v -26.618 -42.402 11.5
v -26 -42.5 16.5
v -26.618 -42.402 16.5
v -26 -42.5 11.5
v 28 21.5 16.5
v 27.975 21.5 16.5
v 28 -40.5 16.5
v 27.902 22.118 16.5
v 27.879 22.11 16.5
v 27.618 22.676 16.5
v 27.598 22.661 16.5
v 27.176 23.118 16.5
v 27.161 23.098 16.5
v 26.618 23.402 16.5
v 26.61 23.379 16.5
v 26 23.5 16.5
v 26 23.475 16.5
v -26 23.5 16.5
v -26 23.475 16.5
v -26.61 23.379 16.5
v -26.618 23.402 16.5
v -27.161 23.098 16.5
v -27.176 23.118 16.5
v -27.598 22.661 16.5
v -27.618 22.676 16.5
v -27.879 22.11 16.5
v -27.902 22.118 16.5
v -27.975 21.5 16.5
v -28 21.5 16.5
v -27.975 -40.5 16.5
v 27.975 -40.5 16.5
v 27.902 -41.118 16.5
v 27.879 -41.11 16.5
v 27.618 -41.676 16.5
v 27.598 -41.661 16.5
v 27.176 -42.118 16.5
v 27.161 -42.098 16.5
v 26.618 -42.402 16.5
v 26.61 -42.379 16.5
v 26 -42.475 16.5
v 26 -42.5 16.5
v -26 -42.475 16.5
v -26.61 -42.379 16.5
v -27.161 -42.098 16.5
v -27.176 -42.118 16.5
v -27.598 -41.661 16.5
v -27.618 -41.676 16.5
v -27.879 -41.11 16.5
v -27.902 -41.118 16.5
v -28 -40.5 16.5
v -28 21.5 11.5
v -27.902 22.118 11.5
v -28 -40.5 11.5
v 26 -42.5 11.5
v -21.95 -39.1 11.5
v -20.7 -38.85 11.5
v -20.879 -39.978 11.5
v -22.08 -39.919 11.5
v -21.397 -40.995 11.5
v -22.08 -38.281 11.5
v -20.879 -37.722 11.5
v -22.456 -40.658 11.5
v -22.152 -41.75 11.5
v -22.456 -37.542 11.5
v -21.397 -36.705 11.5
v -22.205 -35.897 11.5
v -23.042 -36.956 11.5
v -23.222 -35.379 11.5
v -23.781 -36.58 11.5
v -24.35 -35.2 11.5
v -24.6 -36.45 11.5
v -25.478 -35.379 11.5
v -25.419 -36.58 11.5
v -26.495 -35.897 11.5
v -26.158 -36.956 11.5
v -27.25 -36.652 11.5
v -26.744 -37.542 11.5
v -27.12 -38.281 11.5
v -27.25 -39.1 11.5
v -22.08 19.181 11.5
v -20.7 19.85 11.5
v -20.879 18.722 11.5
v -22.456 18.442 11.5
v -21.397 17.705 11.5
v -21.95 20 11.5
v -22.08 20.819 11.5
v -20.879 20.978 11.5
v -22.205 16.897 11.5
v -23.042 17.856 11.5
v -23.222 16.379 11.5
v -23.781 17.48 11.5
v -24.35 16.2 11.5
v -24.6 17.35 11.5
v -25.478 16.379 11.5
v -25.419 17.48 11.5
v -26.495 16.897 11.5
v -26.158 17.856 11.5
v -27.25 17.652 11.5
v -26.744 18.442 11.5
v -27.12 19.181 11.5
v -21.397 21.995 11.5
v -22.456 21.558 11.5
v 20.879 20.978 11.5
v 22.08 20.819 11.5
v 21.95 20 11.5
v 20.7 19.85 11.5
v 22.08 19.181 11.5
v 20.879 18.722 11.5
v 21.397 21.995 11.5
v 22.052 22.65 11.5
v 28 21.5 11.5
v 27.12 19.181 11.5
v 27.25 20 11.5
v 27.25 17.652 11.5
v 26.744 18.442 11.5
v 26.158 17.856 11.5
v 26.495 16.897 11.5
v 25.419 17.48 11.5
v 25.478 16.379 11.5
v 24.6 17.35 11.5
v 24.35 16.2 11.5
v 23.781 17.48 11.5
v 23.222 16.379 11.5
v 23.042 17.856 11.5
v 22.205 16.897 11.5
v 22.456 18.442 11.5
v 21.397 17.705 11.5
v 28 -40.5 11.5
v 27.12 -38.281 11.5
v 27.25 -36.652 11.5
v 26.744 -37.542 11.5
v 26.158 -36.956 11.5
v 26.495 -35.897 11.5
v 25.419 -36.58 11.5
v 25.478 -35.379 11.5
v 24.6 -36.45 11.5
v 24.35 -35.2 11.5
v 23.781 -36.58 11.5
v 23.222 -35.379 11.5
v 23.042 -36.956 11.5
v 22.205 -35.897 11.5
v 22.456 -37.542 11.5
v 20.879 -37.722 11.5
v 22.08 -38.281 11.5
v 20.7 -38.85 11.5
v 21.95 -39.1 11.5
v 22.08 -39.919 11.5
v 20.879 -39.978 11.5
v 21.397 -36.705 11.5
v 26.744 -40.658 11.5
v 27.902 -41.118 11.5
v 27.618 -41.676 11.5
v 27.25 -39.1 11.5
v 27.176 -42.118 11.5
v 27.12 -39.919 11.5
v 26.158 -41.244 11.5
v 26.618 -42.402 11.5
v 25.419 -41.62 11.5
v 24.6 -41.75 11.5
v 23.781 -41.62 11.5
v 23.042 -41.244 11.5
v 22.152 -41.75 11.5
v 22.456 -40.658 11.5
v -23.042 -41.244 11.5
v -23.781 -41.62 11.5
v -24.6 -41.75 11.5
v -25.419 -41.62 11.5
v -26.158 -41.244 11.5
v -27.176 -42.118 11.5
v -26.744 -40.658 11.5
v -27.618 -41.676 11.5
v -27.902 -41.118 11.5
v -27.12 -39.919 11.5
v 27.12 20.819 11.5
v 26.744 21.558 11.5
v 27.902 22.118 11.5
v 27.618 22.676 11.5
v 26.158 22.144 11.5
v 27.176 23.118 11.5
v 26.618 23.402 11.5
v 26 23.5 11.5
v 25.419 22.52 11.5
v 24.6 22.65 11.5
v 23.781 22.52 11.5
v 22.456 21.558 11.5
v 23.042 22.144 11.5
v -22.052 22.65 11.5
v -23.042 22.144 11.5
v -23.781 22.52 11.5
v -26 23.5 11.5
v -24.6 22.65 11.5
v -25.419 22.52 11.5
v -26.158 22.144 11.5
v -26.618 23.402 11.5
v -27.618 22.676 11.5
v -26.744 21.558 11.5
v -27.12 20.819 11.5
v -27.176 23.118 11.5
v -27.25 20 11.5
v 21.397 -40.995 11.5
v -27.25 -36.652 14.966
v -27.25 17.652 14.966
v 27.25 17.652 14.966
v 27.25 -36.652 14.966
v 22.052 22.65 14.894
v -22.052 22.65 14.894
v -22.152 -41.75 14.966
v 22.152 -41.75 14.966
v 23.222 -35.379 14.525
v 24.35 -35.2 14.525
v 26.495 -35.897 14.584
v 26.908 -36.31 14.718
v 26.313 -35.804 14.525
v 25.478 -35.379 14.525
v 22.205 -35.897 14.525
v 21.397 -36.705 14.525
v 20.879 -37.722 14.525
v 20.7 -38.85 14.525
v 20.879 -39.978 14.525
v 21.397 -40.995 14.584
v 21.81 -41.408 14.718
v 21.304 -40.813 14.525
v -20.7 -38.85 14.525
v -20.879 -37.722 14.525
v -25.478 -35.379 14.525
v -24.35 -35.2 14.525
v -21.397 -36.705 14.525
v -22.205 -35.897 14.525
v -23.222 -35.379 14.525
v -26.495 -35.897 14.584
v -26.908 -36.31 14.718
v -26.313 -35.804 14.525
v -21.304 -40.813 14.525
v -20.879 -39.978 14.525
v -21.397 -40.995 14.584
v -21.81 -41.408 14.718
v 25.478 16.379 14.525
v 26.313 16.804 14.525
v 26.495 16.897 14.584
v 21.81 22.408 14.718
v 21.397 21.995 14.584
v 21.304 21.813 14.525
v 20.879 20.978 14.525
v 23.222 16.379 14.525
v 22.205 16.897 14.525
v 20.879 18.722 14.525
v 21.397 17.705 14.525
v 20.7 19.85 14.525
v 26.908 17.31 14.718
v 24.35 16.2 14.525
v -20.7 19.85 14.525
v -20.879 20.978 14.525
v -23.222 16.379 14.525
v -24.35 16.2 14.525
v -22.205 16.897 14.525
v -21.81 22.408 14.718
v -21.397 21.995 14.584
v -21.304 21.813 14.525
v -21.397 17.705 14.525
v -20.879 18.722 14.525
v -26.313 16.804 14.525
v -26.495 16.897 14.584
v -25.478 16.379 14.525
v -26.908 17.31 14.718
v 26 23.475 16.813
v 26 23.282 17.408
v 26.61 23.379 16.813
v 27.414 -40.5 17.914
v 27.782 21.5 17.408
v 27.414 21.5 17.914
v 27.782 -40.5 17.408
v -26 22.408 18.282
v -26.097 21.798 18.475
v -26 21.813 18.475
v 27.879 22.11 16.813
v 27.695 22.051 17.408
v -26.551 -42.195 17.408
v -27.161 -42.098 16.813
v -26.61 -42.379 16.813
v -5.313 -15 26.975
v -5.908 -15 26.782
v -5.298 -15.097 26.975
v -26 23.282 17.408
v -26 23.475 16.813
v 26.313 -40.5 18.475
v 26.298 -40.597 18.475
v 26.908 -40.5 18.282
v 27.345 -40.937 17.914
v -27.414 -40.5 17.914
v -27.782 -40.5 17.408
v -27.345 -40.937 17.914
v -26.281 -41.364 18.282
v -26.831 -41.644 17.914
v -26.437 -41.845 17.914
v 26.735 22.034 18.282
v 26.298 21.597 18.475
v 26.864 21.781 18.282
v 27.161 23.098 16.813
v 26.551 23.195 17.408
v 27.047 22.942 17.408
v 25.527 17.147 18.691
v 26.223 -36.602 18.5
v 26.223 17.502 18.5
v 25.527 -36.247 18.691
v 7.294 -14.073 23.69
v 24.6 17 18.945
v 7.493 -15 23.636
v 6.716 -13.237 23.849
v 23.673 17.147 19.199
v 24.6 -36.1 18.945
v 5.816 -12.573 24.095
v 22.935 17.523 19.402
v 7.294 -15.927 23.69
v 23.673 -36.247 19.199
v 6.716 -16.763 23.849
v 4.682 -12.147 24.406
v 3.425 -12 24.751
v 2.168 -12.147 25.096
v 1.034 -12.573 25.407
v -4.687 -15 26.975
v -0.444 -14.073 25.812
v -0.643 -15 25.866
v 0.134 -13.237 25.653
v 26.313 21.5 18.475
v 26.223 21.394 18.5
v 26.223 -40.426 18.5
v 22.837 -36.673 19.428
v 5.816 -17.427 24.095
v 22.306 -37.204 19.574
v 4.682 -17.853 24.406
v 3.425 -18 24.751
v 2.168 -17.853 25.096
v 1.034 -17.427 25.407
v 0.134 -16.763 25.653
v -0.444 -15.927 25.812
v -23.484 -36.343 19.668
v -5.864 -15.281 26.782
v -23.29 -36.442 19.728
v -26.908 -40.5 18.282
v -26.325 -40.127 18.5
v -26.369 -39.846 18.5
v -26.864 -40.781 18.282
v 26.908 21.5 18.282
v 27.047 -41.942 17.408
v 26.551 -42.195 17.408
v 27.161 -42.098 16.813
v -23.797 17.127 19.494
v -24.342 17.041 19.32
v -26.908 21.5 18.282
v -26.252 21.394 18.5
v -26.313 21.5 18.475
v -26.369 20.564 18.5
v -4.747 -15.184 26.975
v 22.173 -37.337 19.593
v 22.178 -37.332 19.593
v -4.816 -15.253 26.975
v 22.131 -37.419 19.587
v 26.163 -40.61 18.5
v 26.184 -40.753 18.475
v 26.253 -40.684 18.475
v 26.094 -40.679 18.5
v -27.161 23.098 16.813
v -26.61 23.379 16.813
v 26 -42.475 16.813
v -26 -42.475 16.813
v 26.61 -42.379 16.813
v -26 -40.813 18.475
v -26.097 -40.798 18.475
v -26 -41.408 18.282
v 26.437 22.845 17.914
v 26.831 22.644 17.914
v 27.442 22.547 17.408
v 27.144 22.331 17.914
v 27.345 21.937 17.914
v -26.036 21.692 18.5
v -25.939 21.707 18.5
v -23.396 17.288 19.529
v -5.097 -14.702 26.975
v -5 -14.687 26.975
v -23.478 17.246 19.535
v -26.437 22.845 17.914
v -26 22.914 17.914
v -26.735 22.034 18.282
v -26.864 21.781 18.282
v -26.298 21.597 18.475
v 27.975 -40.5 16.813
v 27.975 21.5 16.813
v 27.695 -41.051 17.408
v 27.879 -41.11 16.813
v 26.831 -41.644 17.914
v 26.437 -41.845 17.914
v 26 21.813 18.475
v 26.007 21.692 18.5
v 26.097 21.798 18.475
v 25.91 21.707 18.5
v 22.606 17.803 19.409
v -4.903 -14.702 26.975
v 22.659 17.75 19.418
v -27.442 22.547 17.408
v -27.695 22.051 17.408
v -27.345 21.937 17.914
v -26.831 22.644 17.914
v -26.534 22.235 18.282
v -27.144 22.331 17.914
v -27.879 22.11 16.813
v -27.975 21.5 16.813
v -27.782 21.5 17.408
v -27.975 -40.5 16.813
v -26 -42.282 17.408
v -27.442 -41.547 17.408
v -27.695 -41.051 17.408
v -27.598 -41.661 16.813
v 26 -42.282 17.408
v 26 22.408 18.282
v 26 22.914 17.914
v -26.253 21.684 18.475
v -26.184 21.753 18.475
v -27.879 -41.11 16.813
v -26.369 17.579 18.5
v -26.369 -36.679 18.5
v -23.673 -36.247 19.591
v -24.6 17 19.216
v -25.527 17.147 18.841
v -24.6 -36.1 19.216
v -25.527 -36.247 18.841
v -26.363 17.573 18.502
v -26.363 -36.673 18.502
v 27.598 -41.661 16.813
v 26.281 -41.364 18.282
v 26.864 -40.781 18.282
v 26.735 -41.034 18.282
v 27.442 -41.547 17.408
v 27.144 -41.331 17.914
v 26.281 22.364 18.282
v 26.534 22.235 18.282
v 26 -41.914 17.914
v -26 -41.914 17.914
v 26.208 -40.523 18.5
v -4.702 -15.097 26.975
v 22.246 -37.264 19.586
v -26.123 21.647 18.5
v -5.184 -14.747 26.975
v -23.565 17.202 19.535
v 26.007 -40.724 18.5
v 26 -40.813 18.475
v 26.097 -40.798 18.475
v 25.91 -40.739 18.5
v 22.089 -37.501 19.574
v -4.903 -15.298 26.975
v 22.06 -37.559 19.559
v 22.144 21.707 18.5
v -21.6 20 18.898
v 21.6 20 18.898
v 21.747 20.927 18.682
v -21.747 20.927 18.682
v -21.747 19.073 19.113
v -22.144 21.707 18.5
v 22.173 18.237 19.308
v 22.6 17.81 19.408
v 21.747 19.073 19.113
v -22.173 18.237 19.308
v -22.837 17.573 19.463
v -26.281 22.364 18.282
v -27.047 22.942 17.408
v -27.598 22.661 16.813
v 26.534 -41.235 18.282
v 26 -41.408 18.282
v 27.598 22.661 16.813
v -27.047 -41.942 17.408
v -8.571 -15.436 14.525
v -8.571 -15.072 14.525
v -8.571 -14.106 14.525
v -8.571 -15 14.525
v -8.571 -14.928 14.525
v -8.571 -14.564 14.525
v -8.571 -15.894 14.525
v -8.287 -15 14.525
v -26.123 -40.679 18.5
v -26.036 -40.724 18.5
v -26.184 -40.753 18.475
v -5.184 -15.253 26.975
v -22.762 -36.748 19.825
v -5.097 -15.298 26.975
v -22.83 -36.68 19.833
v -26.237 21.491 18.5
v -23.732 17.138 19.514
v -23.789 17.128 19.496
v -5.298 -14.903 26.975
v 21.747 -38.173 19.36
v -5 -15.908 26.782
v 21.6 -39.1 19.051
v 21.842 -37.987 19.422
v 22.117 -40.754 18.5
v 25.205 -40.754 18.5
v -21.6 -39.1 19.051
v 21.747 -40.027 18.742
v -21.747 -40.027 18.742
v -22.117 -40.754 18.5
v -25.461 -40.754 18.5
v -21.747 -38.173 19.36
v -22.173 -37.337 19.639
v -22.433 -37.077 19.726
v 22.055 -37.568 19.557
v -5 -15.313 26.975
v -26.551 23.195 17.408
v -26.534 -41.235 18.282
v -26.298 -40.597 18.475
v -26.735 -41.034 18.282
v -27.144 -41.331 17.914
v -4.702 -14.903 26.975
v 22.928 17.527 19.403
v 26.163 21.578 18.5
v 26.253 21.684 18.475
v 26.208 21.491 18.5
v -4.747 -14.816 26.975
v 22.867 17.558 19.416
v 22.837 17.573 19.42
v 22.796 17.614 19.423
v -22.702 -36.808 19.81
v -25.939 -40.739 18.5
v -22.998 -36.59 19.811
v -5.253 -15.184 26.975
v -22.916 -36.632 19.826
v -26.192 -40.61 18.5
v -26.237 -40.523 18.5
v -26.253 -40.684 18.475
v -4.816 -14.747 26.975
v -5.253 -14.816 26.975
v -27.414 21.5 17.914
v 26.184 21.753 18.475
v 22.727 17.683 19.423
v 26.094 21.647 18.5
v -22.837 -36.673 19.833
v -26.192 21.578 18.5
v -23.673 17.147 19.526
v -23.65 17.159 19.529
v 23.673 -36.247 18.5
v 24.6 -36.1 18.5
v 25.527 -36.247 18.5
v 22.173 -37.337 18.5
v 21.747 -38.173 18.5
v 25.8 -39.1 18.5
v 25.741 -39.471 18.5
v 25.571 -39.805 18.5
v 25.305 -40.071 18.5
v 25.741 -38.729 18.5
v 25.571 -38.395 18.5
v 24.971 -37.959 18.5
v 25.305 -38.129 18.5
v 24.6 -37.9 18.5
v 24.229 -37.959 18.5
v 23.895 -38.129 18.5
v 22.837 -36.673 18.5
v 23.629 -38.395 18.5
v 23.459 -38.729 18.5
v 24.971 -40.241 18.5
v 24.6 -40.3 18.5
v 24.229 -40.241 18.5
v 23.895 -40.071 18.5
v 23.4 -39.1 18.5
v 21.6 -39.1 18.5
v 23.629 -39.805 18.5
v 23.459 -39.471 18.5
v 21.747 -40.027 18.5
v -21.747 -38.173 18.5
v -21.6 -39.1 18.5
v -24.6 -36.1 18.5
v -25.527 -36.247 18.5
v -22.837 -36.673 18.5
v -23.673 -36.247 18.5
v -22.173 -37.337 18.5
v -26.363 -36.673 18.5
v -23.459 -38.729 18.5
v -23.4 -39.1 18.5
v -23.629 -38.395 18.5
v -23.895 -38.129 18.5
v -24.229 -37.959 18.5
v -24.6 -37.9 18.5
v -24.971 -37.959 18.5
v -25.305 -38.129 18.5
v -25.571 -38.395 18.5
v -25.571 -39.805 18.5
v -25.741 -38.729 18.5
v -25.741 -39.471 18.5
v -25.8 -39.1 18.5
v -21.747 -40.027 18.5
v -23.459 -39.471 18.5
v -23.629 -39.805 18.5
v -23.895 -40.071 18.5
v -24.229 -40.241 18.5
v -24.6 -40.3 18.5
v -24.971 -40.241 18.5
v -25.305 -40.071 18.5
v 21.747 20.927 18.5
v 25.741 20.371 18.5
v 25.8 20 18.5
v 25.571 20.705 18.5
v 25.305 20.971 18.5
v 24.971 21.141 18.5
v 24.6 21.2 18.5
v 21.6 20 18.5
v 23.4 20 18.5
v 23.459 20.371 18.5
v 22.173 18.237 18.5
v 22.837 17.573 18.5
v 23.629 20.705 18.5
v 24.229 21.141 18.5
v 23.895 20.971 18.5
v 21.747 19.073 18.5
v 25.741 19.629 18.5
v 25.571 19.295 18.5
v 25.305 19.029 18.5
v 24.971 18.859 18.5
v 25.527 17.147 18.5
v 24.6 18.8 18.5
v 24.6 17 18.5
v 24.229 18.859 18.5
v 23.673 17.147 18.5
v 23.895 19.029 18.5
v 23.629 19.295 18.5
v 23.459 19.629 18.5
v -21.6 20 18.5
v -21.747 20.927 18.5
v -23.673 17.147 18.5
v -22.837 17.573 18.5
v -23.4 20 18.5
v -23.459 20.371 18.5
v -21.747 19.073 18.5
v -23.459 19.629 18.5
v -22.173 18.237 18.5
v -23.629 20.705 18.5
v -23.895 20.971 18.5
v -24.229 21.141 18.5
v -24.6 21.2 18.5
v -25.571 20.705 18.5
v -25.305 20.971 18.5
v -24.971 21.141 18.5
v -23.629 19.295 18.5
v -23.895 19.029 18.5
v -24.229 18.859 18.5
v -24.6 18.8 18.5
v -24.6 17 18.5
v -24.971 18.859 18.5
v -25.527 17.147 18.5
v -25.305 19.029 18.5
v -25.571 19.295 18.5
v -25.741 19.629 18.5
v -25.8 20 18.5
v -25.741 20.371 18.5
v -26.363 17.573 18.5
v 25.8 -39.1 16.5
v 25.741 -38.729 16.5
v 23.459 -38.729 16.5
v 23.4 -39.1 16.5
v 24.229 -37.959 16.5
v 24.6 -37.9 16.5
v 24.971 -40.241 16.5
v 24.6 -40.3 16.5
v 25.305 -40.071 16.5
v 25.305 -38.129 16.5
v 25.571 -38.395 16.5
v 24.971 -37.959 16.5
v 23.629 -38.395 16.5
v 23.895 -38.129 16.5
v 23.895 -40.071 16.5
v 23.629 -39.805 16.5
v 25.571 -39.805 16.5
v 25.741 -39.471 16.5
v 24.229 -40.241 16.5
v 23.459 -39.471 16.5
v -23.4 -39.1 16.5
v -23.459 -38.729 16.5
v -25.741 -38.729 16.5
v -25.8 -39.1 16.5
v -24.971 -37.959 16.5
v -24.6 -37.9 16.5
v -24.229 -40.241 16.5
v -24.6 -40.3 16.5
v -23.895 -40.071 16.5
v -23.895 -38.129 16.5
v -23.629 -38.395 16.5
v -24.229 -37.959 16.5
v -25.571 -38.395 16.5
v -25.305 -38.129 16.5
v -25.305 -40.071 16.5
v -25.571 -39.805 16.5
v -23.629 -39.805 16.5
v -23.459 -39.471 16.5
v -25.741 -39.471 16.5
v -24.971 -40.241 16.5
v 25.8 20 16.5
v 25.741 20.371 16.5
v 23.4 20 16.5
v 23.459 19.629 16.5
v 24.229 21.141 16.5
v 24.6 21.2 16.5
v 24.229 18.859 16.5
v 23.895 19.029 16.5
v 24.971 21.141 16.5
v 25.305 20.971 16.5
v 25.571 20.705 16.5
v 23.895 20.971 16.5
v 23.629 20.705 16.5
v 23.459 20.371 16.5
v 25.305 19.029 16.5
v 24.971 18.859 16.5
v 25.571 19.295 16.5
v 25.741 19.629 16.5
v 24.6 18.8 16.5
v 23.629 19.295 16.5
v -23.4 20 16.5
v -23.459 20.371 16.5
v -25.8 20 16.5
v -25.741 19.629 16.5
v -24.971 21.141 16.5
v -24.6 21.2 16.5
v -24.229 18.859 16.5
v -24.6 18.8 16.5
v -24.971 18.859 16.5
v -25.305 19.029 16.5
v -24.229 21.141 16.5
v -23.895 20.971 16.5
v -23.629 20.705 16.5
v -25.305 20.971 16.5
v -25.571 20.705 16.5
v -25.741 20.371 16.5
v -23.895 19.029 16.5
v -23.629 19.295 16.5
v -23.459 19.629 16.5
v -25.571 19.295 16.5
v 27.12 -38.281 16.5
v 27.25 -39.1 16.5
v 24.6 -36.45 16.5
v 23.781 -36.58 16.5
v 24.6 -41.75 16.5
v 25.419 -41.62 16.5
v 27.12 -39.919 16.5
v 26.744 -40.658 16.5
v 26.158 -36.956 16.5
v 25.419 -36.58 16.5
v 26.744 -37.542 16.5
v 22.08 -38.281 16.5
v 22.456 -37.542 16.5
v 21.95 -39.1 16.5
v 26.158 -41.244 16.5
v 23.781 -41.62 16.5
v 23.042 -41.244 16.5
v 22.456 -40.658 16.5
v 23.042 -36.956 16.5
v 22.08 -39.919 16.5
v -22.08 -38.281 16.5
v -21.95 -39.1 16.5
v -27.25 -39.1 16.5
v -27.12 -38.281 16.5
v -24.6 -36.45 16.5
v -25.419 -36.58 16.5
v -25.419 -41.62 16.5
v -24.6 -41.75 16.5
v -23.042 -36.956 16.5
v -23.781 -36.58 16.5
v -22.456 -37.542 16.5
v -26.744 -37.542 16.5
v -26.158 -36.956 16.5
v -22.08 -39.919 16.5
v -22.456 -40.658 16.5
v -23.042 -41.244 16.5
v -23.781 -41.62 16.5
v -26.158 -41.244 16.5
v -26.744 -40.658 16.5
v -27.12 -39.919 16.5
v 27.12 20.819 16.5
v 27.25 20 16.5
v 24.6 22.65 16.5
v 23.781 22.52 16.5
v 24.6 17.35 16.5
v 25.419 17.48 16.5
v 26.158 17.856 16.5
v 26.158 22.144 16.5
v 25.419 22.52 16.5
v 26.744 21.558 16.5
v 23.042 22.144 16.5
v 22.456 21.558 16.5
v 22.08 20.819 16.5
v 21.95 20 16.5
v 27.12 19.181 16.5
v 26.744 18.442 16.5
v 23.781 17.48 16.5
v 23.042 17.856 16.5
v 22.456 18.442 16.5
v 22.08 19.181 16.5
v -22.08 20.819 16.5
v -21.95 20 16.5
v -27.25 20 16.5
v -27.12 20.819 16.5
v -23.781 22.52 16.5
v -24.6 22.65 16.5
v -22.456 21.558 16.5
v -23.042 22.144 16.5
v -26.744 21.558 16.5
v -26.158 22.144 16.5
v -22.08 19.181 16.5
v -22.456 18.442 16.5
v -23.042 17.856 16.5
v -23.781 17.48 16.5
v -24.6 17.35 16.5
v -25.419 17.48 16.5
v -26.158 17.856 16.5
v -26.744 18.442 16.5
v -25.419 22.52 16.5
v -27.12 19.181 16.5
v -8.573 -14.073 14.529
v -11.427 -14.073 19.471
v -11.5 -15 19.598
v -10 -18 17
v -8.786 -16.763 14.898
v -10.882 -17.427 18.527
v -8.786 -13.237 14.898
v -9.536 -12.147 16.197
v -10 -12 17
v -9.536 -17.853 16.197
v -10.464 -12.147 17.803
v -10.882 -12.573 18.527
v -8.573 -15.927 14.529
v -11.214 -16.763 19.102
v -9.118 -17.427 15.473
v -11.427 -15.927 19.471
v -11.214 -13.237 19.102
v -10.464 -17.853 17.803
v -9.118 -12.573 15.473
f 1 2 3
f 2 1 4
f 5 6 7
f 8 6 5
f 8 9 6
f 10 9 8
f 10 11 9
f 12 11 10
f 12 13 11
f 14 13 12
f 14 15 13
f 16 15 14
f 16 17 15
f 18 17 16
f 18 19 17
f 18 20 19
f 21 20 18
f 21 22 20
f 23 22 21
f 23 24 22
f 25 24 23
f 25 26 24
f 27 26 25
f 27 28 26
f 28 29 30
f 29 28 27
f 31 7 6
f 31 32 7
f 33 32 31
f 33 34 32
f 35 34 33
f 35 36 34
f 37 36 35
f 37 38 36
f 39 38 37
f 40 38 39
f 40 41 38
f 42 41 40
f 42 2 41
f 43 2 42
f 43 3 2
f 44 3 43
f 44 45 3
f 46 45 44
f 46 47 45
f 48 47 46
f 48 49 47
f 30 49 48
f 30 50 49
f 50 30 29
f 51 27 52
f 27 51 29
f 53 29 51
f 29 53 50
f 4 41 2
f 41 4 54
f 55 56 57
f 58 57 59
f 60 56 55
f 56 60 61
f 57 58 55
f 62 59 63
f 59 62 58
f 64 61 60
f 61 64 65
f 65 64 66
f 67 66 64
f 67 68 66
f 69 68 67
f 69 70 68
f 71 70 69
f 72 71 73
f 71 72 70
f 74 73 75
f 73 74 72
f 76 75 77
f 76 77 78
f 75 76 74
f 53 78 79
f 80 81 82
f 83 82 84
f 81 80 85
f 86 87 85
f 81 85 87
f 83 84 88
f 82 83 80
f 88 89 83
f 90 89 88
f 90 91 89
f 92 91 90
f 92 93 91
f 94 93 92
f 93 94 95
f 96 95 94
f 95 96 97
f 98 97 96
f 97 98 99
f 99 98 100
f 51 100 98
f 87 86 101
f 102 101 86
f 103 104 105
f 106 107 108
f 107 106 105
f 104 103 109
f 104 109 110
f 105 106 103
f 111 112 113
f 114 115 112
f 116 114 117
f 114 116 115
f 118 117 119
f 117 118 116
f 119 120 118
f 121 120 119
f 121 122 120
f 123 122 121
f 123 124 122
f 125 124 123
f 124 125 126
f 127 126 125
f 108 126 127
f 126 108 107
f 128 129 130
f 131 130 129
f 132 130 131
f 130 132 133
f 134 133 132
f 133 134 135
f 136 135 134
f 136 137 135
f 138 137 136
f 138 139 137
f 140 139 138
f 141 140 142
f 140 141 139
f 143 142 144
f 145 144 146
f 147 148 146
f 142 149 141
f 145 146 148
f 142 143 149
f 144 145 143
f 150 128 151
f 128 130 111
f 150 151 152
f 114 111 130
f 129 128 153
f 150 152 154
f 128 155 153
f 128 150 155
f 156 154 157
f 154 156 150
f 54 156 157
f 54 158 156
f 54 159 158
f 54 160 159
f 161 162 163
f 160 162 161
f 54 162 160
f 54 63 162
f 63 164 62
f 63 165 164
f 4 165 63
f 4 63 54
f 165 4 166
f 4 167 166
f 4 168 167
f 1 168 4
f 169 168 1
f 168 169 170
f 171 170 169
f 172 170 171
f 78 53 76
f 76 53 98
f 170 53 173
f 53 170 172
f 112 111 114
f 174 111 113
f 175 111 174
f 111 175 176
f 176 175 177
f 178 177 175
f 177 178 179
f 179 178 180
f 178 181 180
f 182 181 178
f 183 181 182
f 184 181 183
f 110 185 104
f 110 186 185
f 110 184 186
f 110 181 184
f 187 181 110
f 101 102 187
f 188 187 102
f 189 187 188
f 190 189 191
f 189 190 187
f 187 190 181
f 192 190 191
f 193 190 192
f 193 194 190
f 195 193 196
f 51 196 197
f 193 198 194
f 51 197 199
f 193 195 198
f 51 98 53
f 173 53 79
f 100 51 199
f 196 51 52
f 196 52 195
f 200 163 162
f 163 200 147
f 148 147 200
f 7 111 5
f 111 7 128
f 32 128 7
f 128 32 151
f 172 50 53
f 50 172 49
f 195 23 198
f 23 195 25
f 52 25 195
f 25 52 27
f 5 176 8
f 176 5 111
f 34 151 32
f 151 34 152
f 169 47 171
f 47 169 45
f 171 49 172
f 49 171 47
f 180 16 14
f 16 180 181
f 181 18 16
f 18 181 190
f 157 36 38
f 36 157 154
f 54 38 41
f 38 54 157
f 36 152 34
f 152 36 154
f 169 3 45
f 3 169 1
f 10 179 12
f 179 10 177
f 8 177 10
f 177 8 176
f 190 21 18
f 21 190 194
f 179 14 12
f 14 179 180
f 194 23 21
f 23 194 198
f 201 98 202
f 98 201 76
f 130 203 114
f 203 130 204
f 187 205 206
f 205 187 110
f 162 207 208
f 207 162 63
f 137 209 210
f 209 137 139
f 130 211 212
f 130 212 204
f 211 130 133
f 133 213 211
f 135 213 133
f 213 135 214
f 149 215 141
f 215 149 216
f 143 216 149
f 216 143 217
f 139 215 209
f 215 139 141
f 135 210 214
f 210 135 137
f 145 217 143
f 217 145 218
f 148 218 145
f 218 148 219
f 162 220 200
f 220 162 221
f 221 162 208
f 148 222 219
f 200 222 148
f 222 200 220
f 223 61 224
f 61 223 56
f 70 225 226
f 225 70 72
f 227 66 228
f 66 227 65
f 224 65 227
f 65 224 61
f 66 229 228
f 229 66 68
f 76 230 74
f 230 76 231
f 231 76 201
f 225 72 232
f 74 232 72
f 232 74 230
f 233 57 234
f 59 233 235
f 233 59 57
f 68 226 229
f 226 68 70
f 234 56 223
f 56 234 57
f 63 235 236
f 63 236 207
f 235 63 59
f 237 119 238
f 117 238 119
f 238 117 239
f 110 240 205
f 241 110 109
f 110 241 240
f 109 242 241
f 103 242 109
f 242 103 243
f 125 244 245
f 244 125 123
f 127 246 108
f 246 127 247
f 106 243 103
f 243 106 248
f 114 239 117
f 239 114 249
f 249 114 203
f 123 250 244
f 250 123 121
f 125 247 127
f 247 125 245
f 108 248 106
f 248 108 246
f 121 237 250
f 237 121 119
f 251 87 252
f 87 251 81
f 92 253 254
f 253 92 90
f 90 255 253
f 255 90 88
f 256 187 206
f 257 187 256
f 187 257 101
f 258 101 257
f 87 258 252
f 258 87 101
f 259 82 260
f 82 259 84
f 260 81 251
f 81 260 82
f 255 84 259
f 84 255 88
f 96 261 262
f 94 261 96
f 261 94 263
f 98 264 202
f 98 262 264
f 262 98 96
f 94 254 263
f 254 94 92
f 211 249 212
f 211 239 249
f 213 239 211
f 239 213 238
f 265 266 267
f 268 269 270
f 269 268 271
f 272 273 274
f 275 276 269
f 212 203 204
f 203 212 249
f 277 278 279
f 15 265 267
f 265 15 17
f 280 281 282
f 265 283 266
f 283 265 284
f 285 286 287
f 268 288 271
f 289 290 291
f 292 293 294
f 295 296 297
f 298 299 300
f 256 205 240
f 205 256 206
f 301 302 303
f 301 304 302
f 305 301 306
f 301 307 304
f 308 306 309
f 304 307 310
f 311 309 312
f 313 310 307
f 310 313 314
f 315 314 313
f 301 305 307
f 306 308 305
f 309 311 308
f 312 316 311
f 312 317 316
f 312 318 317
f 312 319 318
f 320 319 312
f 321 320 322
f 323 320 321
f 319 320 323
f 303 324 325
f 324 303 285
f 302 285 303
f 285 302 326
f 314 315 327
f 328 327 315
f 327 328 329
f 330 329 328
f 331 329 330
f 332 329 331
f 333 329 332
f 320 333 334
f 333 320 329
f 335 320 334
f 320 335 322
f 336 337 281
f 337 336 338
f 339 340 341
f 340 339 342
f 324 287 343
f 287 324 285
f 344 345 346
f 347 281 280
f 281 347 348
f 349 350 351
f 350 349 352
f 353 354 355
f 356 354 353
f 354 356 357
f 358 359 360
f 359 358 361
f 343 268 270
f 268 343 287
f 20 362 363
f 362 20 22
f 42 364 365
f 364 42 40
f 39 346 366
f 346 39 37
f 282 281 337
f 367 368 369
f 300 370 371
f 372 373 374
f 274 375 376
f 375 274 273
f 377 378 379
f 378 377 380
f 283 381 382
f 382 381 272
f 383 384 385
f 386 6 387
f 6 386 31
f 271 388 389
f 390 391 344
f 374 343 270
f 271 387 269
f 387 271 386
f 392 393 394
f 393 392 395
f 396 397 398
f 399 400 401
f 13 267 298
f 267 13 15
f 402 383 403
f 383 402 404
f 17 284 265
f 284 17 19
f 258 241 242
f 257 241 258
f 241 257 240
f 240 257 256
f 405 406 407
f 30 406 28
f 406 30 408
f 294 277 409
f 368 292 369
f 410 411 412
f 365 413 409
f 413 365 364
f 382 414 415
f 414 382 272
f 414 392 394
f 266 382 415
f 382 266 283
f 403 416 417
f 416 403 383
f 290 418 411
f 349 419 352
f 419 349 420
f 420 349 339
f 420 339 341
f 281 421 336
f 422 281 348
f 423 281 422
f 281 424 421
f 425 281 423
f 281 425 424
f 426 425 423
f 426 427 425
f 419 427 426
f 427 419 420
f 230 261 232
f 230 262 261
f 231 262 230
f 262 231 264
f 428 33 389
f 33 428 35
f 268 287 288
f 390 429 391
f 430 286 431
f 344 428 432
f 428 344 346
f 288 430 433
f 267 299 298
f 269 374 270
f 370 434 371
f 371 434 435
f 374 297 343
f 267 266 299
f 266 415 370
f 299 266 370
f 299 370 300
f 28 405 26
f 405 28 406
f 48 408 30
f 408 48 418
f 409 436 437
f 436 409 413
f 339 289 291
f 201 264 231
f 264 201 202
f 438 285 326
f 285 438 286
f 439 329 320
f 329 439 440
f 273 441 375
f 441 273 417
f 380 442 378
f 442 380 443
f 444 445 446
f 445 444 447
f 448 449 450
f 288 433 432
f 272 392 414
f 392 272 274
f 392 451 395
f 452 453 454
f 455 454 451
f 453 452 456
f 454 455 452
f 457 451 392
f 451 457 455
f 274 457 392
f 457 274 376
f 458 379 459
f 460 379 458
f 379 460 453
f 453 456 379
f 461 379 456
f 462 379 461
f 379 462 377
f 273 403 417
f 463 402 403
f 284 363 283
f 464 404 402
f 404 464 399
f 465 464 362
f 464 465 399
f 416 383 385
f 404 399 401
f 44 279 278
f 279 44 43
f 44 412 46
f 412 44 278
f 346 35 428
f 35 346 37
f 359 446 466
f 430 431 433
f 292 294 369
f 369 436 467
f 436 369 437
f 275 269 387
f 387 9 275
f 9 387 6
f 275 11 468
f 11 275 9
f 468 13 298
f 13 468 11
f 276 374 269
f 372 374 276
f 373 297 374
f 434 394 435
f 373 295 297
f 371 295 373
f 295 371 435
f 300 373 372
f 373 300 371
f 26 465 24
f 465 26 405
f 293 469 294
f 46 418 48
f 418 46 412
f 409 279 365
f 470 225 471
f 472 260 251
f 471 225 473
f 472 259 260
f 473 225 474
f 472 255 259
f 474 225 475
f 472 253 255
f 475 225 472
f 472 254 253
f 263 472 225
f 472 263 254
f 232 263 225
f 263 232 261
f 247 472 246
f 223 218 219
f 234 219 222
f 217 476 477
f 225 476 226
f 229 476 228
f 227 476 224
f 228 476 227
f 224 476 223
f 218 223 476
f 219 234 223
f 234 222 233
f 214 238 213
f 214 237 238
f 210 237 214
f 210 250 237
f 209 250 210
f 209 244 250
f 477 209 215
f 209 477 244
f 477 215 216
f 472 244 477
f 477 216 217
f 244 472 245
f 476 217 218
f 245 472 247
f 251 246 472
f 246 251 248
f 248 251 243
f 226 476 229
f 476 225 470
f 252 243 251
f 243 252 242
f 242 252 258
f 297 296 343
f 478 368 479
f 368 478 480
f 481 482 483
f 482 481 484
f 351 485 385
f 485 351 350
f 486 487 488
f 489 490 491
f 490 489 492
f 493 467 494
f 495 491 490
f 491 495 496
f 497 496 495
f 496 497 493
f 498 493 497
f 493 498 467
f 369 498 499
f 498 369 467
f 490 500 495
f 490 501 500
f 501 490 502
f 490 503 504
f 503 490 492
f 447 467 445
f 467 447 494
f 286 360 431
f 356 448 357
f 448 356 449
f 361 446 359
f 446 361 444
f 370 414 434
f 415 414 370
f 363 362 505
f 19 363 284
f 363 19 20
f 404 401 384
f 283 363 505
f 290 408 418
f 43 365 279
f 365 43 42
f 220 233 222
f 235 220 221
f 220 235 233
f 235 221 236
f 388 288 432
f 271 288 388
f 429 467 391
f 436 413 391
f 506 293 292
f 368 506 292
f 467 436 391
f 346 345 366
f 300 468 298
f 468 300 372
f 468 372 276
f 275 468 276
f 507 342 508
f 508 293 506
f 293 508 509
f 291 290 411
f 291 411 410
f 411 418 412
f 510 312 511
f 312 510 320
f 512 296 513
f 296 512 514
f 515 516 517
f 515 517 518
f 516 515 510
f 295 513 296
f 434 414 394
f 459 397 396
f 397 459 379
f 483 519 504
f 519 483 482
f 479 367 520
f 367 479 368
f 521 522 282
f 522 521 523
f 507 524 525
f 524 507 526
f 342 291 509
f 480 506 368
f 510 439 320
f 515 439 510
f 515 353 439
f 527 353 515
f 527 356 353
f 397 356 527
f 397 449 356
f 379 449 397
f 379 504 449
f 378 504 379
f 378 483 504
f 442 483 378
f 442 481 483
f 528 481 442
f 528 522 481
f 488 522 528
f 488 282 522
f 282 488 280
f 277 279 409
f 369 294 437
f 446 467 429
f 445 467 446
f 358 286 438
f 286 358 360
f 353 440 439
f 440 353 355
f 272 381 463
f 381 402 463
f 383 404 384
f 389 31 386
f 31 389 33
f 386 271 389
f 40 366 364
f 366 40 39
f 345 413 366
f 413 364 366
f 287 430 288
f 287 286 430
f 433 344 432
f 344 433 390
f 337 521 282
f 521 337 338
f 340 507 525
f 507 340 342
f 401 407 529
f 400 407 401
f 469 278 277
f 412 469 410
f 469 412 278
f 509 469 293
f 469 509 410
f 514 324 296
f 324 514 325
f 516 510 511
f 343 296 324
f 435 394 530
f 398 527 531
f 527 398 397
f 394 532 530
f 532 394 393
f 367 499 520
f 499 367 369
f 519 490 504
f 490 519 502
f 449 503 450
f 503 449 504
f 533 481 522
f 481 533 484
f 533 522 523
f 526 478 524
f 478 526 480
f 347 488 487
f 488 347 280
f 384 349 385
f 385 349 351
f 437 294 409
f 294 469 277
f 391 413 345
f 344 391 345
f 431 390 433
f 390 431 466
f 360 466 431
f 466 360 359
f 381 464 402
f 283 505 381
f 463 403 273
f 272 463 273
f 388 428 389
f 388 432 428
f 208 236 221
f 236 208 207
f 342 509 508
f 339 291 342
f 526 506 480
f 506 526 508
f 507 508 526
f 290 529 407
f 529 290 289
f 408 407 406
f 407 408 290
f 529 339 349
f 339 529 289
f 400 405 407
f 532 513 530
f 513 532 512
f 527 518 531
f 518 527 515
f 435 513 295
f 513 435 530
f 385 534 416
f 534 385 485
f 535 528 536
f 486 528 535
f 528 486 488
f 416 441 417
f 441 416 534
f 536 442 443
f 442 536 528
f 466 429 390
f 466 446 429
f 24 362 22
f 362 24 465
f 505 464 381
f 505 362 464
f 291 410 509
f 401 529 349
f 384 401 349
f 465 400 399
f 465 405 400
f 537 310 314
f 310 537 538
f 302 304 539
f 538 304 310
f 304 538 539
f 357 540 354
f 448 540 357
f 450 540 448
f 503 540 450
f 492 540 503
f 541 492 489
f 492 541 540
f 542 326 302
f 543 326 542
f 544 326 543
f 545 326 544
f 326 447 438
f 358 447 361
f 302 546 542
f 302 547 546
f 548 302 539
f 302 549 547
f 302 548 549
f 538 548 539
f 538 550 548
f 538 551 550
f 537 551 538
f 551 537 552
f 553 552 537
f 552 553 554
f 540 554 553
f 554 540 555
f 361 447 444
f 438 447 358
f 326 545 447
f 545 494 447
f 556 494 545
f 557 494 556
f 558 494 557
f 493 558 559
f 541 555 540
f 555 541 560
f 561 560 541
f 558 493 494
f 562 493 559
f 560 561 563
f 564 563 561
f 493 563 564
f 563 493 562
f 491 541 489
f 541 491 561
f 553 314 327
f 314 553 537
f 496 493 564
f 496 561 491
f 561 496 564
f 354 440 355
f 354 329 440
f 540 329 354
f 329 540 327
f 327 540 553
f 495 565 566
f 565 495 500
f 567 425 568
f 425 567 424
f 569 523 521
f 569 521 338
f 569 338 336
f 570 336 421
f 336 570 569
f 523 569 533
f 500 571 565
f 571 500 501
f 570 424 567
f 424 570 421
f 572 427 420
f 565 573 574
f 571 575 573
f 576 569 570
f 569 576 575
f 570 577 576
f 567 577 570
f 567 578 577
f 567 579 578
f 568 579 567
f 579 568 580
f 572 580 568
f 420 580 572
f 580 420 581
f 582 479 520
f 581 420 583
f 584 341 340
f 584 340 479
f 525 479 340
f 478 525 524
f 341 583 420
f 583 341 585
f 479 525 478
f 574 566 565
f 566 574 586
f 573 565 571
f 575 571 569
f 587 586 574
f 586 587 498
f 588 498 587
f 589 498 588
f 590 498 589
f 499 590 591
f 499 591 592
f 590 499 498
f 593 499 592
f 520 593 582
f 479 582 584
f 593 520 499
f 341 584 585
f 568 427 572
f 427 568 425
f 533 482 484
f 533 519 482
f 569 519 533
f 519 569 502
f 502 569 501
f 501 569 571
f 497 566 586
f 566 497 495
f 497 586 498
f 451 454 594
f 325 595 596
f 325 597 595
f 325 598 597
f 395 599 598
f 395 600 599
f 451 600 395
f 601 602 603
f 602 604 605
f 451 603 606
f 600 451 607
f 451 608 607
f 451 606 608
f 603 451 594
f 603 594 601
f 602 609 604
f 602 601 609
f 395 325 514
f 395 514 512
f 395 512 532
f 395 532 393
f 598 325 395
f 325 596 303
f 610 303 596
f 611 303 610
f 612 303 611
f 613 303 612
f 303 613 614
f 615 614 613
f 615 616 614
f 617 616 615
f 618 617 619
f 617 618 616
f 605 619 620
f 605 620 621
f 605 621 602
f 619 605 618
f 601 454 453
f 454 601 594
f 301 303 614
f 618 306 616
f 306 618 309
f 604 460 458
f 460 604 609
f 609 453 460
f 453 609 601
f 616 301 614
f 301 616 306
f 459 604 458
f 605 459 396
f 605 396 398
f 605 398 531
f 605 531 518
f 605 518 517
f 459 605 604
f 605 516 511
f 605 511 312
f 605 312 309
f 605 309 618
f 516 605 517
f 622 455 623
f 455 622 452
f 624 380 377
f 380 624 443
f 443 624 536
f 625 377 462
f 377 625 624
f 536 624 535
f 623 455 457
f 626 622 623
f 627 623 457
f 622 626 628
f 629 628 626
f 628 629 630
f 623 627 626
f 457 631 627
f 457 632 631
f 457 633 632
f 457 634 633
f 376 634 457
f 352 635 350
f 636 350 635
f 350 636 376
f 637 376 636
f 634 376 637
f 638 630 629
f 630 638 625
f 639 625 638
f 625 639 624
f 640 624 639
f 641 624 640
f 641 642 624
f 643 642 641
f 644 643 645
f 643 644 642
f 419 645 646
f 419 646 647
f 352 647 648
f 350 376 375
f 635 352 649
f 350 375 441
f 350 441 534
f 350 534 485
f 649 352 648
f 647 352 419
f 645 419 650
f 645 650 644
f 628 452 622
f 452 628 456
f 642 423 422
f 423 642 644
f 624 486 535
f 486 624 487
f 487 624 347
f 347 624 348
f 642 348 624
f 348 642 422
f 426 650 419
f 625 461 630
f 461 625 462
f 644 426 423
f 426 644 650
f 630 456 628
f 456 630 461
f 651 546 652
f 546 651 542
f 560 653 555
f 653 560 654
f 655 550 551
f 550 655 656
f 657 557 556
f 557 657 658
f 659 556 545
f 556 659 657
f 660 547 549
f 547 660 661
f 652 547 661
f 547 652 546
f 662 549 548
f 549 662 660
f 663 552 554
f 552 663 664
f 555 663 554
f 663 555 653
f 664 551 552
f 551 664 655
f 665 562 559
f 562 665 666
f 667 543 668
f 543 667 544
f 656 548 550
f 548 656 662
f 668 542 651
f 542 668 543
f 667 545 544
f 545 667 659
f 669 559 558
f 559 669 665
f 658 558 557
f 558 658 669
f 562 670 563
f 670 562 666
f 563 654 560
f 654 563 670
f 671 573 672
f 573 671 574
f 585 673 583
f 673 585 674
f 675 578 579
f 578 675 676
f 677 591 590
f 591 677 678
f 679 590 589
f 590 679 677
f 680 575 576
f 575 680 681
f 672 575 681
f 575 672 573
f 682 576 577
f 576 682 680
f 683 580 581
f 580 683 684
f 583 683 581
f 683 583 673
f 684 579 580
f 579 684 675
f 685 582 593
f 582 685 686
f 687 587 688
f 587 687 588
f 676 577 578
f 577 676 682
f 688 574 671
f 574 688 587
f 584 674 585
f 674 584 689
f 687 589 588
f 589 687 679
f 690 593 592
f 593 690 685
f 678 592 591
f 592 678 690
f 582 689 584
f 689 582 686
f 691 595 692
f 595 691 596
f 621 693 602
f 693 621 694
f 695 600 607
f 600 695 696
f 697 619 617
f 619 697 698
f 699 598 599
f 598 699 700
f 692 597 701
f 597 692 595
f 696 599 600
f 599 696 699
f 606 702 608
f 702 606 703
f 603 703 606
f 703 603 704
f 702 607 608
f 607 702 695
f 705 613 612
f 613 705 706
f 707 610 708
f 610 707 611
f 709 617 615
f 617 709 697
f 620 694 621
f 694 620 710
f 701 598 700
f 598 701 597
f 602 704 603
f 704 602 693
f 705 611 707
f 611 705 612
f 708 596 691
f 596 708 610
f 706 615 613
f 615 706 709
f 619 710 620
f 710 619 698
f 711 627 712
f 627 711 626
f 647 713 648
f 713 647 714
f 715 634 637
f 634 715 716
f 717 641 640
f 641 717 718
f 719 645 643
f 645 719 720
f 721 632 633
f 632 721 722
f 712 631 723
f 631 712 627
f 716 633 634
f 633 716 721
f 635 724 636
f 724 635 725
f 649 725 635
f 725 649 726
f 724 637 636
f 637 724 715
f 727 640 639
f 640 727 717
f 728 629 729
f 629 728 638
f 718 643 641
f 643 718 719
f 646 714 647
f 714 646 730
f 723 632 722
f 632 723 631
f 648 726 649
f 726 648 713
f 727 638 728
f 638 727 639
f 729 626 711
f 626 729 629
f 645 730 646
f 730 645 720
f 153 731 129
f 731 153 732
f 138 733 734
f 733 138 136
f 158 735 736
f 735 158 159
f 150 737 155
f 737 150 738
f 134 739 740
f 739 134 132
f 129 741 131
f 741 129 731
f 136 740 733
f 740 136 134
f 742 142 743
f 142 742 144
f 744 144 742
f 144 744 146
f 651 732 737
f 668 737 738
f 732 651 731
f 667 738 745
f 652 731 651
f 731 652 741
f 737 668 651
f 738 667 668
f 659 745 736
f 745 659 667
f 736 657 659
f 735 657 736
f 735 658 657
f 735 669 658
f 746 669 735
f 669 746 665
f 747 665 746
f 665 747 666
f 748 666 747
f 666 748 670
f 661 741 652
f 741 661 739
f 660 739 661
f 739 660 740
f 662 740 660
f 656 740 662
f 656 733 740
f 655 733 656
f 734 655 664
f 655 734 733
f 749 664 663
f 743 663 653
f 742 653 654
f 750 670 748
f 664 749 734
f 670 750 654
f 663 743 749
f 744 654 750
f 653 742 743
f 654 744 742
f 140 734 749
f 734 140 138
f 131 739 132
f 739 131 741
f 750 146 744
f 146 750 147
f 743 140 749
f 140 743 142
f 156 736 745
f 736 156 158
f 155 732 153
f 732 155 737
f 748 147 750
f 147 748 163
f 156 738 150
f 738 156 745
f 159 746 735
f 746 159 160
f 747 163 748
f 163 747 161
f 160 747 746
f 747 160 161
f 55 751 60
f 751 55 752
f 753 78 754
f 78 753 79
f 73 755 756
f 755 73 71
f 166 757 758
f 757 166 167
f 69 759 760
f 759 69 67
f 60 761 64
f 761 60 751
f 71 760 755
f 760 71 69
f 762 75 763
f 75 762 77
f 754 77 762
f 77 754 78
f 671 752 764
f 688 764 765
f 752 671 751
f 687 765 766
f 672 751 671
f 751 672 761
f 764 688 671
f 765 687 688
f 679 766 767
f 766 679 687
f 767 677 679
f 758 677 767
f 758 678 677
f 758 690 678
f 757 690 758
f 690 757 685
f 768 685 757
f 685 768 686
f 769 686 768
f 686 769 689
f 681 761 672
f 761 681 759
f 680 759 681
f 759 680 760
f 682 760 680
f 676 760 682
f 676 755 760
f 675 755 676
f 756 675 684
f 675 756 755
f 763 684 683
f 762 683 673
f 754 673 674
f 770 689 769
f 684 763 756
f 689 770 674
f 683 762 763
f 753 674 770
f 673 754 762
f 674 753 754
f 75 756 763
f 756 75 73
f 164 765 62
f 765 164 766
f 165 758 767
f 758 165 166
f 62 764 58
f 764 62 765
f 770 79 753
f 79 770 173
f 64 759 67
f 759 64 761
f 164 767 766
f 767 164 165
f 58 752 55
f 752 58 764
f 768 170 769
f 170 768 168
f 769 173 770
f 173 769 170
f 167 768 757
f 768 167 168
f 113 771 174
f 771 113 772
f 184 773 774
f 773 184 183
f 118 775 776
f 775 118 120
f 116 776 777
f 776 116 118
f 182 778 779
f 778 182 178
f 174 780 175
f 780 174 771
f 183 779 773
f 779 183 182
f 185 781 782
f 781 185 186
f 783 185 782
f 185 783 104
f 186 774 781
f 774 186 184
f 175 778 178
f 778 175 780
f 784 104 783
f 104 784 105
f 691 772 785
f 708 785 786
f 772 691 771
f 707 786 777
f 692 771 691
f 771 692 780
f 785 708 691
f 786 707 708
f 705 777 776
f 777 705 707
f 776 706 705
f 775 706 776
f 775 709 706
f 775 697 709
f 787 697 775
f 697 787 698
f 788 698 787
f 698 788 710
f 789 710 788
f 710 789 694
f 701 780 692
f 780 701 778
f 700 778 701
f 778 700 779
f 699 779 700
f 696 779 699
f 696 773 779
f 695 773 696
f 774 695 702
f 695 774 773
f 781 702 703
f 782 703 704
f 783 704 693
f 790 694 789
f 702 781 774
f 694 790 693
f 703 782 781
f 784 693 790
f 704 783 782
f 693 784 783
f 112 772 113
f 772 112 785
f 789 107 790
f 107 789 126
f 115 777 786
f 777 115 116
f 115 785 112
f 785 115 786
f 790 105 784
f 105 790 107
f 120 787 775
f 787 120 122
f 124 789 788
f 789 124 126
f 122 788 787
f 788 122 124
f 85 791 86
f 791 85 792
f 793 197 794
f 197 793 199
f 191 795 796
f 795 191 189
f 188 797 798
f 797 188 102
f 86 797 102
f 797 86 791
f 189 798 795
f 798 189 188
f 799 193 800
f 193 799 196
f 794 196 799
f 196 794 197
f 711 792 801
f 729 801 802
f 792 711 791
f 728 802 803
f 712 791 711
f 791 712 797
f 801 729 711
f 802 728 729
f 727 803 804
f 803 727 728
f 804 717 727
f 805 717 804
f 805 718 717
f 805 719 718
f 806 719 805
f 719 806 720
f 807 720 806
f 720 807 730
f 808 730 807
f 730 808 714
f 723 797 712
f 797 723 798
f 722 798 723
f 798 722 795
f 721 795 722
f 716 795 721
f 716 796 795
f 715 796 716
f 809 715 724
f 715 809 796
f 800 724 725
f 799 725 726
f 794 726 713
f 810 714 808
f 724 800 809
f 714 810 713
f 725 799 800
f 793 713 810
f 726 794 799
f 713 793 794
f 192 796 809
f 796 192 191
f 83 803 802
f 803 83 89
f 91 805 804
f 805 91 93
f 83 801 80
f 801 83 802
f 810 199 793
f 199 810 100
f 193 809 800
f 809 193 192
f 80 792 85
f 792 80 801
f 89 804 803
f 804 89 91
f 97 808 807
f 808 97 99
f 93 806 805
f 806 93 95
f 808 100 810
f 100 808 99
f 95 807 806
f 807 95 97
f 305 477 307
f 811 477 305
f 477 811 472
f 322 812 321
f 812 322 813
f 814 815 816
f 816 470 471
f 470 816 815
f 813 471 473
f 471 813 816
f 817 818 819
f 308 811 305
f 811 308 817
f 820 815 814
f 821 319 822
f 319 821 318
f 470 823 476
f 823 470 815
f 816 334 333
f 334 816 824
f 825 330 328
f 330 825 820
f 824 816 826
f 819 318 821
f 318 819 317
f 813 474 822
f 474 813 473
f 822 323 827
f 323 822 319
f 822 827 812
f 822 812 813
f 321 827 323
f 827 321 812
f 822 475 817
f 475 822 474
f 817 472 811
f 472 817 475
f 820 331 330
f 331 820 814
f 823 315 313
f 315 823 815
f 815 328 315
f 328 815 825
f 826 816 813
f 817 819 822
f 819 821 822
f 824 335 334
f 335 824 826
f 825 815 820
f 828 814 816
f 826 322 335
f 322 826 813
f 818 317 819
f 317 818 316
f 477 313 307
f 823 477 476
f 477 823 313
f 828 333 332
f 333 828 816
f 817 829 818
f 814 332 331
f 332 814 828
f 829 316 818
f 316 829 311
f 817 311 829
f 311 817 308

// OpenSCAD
// file: raspi_model.scad
module pi_board_holes(pi_dims, hole_positions, hole_diameter, fn) {
    echo(hole_diameter);
    for( pos = hole_positions)
        translate([pos[0], pos[1], pos[2]]) 
            cylinder(d=hole_diameter, h=pos[2], $fn=fn);
}

module pi_board(pi_dims, corner_radius, pi_hole_positions, hole_diameter, fn) {
    x = pi_dims[0]/2 - corner_radius;
    y = pi_dims[1]/2 - corner_radius;
//    translate([0, 0, pi_dims[2]/2])
        difference(){
            hull() {
                translate([ x, y, 0]) cylinder(r=corner_radius, h=pi_dims[2], $fn=fn);
                translate([-x, y, 0]) cylinder(r=corner_radius, h=pi_dims[2], $fn=fn);
                translate([ x,-y, 0]) cylinder(r=corner_radius, h=pi_dims[2], $fn=fn);
                translate([-x,-y, 0]) cylinder(r=corner_radius, h=pi_dims[2], $fn=fn);
            }
            pi_board_holes(pi_dims, pi_hole_positions, hole_diameter, fn);
        };
}

module pi_top_posts(hole_positions, post_h, post_d, hole_d, fn) {
    for( pos = hole_positions)
        translate([pos[0], pos[1], pos[2]]) 
            difference(){
                cylinder(d=post_d, h=post_h, $fn=fn);
                cylinder(d=hole_d, h=post_h, $fn=fn);
            };
}

module usb_plug() {
    cube([13.3, 17.0, 13.1]);
}

module eth_plug() {
    cube([16.0, 21.3, 14.0]);
}

module hdmi_socket() {
    cube([12.1, 15.0, 5.6]);
}

module ribbon_socket() {
    cube([22.35, 3.0, 7.55]);
}

module audio_socket() {
    cube([12.8, 7.7, 7.7]);
    translate([12.8, 3.85, 3.85])
        rotate([0, 90, 0])
            cylinder(d=7.7, h=2.2);
}

module forty_pin_header() {
    cube([5.0, 50.5, 8.5]);
}

// params
function pi_post_diameter() = 5.3;
function pi_top_post_height() = 15.0;
function pi_dims() = [56.0, 85.0, 1.5];
function pi_corner_radius() = 2.0;
function pi_hole_margin_inset() = 3.4;
function pi_hole_diameter() = 2.4;
function pi_hole_positions() = [
    [ 24.6,-39.1, 1.5],
    [-24.6,-39.1, 1.5],
    [ 24.6, 20.0, 1.5],
    [-24.6, 20.0, 1.5]
];

module pi_assembly() {
    fn = 20;

    pi_board(pi_dims(), pi_corner_radius(), pi_hole_positions(), pi_hole_diameter(), fn);

    translate([  -25.0, 27.5, 1.5]) usb_plug();
    translate([  -7.0,  27.5, 1.5]) usb_plug();
    translate([  10.0,  23.5, 1.5]) eth_plug();
    translate([  18.0, -22.0, 1.5]) hdmi_socket();
    translate([   5.5,  -1.5, 1.5]) ribbon_socket();
    translate([ -11.0, -41.5, 1.5]) ribbon_socket();
    translate([  15.0, 5.5, 1.5]) audio_socket();
    translate([   -27,  -35.5, 1.5]) forty_pin_header();

    pi_top_posts(
        pi_hole_positions(),
        pi_top_post_height(),
        pi_post_diameter(),
        pi_hole_diameter(), fn);
}

pi_assembly();
// main file
use <./raspi_model.scad>;

fn = 20;

module mount_shell(pi_dims, corner_radius, pi_hole_positions, hole_diameter, fn) {
    x = pi_dims[0]/2 - 2;
    y1 = pi_dims[1]/2 - 2;
    y2 = pi_dims[1]/2 - 21;
    h = pi_top_post_height() - 10;
    translate([0, 0, pi_dims[2] + 10])
        hull() {
            translate([ x,-y1, 0]) cylinder(r=corner_radius, h=h, $fn=fn);
            translate([-x,-y1, 0]) cylinder(r=corner_radius, h=h, $fn=fn);
            translate([ x, y2, 0]) cylinder(r=corner_radius, h=h, $fn=fn);
            translate([-x, y2, 0]) cylinder(r=corner_radius, h=h, $fn=fn);
        };
}

module bracket_cavity() {
    hull() {
            pi_top_posts(
                pi_hole_positions(),
                pi_top_post_height(),
                pi_post_diameter(),
                pi_hole_diameter(), fn);
        };
}

module bracket_shell() {
    difference(){
        mount_shell(
            pi_dims(),
            pi_corner_radius(),
            pi_hole_positions(),
            pi_hole_diameter(), fn);
        bracket_cavity();
    }
}

module bracket_post_sleeves() {
    height = pi_top_post_height() - 10;
    radius = pi_post_diameter()/2 + 1;
    x = pi_dims()[0]/2-radius;
    y1 = pi_dims()[1]/2 - radius;
    y2 = pi_dims()[1]/2 - radius - 19;
    z = height+6.5;
    translate([x, -y1, z]) cylinder(r=radius, h=height, $fn=fn);
    translate([-x,-y1, z]) cylinder(r=radius, h=height, $fn=fn);
    translate([x,  y2, z]) cylinder(r=radius, h=height, $fn=fn);
    translate([-x, y2, z]) cylinder(r=radius, h=height, $fn=fn);
}

module bracket_post_holes(hole_positions, post_h, post_d, hole_d, fn) {
    for( pos = hole_positions)
        translate([pos[0], pos[1], pos[2]]) 
            cylinder(d=post_d, h=post_h, $fn=fn);
}

module bracket_post_screw_head_facing(hole_positions, post_h, post_d, hole_d, fn) {
    for( pos = hole_positions)
        translate([pos[0], pos[1], pos[2]+post_h+2]) 
            cylinder(d=6.0, h=2, $fn=fn);
    for( pos = hole_positions)
        translate([pos[0], pos[1], pos[2]]) 
            cylinder(d=hole_d, h=post_h+5, $fn=fn);
}

module bracket_center_mount_face() {
    height = pi_top_post_height();
    radius = 2;
    x = pi_dims()[0]/2-radius;
    y1 = pi_dims()[1]/2 - radius;
    y2 = pi_dims()[1]/2 - radius - 19;

    hull() {
        translate([ x, -y1, height+1.5]) sphere(r=radius, $fn=fn);
        translate([-x, -y1, height+1.5]) sphere(r=radius, $fn=fn);
        translate([ x,  y2, height+1.5]) sphere(r=radius, $fn=fn);
        translate([-x,  y2, height+1.5]) sphere(r=radius, $fn=fn);        
        translate([-5, -15, height+10]) sphere(r=radius, $fn=fn);
    }
}

module bracket_center_mount_hole() {
    translate([-10, -15, pi_top_post_height() + 2])
        rotate([0,60,0])
            cylinder(h=22, r=3, $fn=fn);
}

module bracket_assembly() {
    difference() {
        union() {
            bracket_shell();
            bracket_post_sleeves();
            bracket_center_mount_face();    
        }
        union() {
            bracket_post_screw_head_facing(
                pi_hole_positions(),
                pi_top_post_height(),
                pi_post_diameter(),
                pi_hole_diameter(), fn);
            bracket_post_holes(
                    pi_hole_positions(),
                    pi_top_post_height(),
                    pi_post_diameter(),
                    pi_hole_diameter(), fn);
            bracket_center_mount_hole();
        }
    }
}

module full_assembly() {
    bracket_assembly();
    //pi_assembly();
}

//rotate([0, 0, $t*360])
    full_assembly();
